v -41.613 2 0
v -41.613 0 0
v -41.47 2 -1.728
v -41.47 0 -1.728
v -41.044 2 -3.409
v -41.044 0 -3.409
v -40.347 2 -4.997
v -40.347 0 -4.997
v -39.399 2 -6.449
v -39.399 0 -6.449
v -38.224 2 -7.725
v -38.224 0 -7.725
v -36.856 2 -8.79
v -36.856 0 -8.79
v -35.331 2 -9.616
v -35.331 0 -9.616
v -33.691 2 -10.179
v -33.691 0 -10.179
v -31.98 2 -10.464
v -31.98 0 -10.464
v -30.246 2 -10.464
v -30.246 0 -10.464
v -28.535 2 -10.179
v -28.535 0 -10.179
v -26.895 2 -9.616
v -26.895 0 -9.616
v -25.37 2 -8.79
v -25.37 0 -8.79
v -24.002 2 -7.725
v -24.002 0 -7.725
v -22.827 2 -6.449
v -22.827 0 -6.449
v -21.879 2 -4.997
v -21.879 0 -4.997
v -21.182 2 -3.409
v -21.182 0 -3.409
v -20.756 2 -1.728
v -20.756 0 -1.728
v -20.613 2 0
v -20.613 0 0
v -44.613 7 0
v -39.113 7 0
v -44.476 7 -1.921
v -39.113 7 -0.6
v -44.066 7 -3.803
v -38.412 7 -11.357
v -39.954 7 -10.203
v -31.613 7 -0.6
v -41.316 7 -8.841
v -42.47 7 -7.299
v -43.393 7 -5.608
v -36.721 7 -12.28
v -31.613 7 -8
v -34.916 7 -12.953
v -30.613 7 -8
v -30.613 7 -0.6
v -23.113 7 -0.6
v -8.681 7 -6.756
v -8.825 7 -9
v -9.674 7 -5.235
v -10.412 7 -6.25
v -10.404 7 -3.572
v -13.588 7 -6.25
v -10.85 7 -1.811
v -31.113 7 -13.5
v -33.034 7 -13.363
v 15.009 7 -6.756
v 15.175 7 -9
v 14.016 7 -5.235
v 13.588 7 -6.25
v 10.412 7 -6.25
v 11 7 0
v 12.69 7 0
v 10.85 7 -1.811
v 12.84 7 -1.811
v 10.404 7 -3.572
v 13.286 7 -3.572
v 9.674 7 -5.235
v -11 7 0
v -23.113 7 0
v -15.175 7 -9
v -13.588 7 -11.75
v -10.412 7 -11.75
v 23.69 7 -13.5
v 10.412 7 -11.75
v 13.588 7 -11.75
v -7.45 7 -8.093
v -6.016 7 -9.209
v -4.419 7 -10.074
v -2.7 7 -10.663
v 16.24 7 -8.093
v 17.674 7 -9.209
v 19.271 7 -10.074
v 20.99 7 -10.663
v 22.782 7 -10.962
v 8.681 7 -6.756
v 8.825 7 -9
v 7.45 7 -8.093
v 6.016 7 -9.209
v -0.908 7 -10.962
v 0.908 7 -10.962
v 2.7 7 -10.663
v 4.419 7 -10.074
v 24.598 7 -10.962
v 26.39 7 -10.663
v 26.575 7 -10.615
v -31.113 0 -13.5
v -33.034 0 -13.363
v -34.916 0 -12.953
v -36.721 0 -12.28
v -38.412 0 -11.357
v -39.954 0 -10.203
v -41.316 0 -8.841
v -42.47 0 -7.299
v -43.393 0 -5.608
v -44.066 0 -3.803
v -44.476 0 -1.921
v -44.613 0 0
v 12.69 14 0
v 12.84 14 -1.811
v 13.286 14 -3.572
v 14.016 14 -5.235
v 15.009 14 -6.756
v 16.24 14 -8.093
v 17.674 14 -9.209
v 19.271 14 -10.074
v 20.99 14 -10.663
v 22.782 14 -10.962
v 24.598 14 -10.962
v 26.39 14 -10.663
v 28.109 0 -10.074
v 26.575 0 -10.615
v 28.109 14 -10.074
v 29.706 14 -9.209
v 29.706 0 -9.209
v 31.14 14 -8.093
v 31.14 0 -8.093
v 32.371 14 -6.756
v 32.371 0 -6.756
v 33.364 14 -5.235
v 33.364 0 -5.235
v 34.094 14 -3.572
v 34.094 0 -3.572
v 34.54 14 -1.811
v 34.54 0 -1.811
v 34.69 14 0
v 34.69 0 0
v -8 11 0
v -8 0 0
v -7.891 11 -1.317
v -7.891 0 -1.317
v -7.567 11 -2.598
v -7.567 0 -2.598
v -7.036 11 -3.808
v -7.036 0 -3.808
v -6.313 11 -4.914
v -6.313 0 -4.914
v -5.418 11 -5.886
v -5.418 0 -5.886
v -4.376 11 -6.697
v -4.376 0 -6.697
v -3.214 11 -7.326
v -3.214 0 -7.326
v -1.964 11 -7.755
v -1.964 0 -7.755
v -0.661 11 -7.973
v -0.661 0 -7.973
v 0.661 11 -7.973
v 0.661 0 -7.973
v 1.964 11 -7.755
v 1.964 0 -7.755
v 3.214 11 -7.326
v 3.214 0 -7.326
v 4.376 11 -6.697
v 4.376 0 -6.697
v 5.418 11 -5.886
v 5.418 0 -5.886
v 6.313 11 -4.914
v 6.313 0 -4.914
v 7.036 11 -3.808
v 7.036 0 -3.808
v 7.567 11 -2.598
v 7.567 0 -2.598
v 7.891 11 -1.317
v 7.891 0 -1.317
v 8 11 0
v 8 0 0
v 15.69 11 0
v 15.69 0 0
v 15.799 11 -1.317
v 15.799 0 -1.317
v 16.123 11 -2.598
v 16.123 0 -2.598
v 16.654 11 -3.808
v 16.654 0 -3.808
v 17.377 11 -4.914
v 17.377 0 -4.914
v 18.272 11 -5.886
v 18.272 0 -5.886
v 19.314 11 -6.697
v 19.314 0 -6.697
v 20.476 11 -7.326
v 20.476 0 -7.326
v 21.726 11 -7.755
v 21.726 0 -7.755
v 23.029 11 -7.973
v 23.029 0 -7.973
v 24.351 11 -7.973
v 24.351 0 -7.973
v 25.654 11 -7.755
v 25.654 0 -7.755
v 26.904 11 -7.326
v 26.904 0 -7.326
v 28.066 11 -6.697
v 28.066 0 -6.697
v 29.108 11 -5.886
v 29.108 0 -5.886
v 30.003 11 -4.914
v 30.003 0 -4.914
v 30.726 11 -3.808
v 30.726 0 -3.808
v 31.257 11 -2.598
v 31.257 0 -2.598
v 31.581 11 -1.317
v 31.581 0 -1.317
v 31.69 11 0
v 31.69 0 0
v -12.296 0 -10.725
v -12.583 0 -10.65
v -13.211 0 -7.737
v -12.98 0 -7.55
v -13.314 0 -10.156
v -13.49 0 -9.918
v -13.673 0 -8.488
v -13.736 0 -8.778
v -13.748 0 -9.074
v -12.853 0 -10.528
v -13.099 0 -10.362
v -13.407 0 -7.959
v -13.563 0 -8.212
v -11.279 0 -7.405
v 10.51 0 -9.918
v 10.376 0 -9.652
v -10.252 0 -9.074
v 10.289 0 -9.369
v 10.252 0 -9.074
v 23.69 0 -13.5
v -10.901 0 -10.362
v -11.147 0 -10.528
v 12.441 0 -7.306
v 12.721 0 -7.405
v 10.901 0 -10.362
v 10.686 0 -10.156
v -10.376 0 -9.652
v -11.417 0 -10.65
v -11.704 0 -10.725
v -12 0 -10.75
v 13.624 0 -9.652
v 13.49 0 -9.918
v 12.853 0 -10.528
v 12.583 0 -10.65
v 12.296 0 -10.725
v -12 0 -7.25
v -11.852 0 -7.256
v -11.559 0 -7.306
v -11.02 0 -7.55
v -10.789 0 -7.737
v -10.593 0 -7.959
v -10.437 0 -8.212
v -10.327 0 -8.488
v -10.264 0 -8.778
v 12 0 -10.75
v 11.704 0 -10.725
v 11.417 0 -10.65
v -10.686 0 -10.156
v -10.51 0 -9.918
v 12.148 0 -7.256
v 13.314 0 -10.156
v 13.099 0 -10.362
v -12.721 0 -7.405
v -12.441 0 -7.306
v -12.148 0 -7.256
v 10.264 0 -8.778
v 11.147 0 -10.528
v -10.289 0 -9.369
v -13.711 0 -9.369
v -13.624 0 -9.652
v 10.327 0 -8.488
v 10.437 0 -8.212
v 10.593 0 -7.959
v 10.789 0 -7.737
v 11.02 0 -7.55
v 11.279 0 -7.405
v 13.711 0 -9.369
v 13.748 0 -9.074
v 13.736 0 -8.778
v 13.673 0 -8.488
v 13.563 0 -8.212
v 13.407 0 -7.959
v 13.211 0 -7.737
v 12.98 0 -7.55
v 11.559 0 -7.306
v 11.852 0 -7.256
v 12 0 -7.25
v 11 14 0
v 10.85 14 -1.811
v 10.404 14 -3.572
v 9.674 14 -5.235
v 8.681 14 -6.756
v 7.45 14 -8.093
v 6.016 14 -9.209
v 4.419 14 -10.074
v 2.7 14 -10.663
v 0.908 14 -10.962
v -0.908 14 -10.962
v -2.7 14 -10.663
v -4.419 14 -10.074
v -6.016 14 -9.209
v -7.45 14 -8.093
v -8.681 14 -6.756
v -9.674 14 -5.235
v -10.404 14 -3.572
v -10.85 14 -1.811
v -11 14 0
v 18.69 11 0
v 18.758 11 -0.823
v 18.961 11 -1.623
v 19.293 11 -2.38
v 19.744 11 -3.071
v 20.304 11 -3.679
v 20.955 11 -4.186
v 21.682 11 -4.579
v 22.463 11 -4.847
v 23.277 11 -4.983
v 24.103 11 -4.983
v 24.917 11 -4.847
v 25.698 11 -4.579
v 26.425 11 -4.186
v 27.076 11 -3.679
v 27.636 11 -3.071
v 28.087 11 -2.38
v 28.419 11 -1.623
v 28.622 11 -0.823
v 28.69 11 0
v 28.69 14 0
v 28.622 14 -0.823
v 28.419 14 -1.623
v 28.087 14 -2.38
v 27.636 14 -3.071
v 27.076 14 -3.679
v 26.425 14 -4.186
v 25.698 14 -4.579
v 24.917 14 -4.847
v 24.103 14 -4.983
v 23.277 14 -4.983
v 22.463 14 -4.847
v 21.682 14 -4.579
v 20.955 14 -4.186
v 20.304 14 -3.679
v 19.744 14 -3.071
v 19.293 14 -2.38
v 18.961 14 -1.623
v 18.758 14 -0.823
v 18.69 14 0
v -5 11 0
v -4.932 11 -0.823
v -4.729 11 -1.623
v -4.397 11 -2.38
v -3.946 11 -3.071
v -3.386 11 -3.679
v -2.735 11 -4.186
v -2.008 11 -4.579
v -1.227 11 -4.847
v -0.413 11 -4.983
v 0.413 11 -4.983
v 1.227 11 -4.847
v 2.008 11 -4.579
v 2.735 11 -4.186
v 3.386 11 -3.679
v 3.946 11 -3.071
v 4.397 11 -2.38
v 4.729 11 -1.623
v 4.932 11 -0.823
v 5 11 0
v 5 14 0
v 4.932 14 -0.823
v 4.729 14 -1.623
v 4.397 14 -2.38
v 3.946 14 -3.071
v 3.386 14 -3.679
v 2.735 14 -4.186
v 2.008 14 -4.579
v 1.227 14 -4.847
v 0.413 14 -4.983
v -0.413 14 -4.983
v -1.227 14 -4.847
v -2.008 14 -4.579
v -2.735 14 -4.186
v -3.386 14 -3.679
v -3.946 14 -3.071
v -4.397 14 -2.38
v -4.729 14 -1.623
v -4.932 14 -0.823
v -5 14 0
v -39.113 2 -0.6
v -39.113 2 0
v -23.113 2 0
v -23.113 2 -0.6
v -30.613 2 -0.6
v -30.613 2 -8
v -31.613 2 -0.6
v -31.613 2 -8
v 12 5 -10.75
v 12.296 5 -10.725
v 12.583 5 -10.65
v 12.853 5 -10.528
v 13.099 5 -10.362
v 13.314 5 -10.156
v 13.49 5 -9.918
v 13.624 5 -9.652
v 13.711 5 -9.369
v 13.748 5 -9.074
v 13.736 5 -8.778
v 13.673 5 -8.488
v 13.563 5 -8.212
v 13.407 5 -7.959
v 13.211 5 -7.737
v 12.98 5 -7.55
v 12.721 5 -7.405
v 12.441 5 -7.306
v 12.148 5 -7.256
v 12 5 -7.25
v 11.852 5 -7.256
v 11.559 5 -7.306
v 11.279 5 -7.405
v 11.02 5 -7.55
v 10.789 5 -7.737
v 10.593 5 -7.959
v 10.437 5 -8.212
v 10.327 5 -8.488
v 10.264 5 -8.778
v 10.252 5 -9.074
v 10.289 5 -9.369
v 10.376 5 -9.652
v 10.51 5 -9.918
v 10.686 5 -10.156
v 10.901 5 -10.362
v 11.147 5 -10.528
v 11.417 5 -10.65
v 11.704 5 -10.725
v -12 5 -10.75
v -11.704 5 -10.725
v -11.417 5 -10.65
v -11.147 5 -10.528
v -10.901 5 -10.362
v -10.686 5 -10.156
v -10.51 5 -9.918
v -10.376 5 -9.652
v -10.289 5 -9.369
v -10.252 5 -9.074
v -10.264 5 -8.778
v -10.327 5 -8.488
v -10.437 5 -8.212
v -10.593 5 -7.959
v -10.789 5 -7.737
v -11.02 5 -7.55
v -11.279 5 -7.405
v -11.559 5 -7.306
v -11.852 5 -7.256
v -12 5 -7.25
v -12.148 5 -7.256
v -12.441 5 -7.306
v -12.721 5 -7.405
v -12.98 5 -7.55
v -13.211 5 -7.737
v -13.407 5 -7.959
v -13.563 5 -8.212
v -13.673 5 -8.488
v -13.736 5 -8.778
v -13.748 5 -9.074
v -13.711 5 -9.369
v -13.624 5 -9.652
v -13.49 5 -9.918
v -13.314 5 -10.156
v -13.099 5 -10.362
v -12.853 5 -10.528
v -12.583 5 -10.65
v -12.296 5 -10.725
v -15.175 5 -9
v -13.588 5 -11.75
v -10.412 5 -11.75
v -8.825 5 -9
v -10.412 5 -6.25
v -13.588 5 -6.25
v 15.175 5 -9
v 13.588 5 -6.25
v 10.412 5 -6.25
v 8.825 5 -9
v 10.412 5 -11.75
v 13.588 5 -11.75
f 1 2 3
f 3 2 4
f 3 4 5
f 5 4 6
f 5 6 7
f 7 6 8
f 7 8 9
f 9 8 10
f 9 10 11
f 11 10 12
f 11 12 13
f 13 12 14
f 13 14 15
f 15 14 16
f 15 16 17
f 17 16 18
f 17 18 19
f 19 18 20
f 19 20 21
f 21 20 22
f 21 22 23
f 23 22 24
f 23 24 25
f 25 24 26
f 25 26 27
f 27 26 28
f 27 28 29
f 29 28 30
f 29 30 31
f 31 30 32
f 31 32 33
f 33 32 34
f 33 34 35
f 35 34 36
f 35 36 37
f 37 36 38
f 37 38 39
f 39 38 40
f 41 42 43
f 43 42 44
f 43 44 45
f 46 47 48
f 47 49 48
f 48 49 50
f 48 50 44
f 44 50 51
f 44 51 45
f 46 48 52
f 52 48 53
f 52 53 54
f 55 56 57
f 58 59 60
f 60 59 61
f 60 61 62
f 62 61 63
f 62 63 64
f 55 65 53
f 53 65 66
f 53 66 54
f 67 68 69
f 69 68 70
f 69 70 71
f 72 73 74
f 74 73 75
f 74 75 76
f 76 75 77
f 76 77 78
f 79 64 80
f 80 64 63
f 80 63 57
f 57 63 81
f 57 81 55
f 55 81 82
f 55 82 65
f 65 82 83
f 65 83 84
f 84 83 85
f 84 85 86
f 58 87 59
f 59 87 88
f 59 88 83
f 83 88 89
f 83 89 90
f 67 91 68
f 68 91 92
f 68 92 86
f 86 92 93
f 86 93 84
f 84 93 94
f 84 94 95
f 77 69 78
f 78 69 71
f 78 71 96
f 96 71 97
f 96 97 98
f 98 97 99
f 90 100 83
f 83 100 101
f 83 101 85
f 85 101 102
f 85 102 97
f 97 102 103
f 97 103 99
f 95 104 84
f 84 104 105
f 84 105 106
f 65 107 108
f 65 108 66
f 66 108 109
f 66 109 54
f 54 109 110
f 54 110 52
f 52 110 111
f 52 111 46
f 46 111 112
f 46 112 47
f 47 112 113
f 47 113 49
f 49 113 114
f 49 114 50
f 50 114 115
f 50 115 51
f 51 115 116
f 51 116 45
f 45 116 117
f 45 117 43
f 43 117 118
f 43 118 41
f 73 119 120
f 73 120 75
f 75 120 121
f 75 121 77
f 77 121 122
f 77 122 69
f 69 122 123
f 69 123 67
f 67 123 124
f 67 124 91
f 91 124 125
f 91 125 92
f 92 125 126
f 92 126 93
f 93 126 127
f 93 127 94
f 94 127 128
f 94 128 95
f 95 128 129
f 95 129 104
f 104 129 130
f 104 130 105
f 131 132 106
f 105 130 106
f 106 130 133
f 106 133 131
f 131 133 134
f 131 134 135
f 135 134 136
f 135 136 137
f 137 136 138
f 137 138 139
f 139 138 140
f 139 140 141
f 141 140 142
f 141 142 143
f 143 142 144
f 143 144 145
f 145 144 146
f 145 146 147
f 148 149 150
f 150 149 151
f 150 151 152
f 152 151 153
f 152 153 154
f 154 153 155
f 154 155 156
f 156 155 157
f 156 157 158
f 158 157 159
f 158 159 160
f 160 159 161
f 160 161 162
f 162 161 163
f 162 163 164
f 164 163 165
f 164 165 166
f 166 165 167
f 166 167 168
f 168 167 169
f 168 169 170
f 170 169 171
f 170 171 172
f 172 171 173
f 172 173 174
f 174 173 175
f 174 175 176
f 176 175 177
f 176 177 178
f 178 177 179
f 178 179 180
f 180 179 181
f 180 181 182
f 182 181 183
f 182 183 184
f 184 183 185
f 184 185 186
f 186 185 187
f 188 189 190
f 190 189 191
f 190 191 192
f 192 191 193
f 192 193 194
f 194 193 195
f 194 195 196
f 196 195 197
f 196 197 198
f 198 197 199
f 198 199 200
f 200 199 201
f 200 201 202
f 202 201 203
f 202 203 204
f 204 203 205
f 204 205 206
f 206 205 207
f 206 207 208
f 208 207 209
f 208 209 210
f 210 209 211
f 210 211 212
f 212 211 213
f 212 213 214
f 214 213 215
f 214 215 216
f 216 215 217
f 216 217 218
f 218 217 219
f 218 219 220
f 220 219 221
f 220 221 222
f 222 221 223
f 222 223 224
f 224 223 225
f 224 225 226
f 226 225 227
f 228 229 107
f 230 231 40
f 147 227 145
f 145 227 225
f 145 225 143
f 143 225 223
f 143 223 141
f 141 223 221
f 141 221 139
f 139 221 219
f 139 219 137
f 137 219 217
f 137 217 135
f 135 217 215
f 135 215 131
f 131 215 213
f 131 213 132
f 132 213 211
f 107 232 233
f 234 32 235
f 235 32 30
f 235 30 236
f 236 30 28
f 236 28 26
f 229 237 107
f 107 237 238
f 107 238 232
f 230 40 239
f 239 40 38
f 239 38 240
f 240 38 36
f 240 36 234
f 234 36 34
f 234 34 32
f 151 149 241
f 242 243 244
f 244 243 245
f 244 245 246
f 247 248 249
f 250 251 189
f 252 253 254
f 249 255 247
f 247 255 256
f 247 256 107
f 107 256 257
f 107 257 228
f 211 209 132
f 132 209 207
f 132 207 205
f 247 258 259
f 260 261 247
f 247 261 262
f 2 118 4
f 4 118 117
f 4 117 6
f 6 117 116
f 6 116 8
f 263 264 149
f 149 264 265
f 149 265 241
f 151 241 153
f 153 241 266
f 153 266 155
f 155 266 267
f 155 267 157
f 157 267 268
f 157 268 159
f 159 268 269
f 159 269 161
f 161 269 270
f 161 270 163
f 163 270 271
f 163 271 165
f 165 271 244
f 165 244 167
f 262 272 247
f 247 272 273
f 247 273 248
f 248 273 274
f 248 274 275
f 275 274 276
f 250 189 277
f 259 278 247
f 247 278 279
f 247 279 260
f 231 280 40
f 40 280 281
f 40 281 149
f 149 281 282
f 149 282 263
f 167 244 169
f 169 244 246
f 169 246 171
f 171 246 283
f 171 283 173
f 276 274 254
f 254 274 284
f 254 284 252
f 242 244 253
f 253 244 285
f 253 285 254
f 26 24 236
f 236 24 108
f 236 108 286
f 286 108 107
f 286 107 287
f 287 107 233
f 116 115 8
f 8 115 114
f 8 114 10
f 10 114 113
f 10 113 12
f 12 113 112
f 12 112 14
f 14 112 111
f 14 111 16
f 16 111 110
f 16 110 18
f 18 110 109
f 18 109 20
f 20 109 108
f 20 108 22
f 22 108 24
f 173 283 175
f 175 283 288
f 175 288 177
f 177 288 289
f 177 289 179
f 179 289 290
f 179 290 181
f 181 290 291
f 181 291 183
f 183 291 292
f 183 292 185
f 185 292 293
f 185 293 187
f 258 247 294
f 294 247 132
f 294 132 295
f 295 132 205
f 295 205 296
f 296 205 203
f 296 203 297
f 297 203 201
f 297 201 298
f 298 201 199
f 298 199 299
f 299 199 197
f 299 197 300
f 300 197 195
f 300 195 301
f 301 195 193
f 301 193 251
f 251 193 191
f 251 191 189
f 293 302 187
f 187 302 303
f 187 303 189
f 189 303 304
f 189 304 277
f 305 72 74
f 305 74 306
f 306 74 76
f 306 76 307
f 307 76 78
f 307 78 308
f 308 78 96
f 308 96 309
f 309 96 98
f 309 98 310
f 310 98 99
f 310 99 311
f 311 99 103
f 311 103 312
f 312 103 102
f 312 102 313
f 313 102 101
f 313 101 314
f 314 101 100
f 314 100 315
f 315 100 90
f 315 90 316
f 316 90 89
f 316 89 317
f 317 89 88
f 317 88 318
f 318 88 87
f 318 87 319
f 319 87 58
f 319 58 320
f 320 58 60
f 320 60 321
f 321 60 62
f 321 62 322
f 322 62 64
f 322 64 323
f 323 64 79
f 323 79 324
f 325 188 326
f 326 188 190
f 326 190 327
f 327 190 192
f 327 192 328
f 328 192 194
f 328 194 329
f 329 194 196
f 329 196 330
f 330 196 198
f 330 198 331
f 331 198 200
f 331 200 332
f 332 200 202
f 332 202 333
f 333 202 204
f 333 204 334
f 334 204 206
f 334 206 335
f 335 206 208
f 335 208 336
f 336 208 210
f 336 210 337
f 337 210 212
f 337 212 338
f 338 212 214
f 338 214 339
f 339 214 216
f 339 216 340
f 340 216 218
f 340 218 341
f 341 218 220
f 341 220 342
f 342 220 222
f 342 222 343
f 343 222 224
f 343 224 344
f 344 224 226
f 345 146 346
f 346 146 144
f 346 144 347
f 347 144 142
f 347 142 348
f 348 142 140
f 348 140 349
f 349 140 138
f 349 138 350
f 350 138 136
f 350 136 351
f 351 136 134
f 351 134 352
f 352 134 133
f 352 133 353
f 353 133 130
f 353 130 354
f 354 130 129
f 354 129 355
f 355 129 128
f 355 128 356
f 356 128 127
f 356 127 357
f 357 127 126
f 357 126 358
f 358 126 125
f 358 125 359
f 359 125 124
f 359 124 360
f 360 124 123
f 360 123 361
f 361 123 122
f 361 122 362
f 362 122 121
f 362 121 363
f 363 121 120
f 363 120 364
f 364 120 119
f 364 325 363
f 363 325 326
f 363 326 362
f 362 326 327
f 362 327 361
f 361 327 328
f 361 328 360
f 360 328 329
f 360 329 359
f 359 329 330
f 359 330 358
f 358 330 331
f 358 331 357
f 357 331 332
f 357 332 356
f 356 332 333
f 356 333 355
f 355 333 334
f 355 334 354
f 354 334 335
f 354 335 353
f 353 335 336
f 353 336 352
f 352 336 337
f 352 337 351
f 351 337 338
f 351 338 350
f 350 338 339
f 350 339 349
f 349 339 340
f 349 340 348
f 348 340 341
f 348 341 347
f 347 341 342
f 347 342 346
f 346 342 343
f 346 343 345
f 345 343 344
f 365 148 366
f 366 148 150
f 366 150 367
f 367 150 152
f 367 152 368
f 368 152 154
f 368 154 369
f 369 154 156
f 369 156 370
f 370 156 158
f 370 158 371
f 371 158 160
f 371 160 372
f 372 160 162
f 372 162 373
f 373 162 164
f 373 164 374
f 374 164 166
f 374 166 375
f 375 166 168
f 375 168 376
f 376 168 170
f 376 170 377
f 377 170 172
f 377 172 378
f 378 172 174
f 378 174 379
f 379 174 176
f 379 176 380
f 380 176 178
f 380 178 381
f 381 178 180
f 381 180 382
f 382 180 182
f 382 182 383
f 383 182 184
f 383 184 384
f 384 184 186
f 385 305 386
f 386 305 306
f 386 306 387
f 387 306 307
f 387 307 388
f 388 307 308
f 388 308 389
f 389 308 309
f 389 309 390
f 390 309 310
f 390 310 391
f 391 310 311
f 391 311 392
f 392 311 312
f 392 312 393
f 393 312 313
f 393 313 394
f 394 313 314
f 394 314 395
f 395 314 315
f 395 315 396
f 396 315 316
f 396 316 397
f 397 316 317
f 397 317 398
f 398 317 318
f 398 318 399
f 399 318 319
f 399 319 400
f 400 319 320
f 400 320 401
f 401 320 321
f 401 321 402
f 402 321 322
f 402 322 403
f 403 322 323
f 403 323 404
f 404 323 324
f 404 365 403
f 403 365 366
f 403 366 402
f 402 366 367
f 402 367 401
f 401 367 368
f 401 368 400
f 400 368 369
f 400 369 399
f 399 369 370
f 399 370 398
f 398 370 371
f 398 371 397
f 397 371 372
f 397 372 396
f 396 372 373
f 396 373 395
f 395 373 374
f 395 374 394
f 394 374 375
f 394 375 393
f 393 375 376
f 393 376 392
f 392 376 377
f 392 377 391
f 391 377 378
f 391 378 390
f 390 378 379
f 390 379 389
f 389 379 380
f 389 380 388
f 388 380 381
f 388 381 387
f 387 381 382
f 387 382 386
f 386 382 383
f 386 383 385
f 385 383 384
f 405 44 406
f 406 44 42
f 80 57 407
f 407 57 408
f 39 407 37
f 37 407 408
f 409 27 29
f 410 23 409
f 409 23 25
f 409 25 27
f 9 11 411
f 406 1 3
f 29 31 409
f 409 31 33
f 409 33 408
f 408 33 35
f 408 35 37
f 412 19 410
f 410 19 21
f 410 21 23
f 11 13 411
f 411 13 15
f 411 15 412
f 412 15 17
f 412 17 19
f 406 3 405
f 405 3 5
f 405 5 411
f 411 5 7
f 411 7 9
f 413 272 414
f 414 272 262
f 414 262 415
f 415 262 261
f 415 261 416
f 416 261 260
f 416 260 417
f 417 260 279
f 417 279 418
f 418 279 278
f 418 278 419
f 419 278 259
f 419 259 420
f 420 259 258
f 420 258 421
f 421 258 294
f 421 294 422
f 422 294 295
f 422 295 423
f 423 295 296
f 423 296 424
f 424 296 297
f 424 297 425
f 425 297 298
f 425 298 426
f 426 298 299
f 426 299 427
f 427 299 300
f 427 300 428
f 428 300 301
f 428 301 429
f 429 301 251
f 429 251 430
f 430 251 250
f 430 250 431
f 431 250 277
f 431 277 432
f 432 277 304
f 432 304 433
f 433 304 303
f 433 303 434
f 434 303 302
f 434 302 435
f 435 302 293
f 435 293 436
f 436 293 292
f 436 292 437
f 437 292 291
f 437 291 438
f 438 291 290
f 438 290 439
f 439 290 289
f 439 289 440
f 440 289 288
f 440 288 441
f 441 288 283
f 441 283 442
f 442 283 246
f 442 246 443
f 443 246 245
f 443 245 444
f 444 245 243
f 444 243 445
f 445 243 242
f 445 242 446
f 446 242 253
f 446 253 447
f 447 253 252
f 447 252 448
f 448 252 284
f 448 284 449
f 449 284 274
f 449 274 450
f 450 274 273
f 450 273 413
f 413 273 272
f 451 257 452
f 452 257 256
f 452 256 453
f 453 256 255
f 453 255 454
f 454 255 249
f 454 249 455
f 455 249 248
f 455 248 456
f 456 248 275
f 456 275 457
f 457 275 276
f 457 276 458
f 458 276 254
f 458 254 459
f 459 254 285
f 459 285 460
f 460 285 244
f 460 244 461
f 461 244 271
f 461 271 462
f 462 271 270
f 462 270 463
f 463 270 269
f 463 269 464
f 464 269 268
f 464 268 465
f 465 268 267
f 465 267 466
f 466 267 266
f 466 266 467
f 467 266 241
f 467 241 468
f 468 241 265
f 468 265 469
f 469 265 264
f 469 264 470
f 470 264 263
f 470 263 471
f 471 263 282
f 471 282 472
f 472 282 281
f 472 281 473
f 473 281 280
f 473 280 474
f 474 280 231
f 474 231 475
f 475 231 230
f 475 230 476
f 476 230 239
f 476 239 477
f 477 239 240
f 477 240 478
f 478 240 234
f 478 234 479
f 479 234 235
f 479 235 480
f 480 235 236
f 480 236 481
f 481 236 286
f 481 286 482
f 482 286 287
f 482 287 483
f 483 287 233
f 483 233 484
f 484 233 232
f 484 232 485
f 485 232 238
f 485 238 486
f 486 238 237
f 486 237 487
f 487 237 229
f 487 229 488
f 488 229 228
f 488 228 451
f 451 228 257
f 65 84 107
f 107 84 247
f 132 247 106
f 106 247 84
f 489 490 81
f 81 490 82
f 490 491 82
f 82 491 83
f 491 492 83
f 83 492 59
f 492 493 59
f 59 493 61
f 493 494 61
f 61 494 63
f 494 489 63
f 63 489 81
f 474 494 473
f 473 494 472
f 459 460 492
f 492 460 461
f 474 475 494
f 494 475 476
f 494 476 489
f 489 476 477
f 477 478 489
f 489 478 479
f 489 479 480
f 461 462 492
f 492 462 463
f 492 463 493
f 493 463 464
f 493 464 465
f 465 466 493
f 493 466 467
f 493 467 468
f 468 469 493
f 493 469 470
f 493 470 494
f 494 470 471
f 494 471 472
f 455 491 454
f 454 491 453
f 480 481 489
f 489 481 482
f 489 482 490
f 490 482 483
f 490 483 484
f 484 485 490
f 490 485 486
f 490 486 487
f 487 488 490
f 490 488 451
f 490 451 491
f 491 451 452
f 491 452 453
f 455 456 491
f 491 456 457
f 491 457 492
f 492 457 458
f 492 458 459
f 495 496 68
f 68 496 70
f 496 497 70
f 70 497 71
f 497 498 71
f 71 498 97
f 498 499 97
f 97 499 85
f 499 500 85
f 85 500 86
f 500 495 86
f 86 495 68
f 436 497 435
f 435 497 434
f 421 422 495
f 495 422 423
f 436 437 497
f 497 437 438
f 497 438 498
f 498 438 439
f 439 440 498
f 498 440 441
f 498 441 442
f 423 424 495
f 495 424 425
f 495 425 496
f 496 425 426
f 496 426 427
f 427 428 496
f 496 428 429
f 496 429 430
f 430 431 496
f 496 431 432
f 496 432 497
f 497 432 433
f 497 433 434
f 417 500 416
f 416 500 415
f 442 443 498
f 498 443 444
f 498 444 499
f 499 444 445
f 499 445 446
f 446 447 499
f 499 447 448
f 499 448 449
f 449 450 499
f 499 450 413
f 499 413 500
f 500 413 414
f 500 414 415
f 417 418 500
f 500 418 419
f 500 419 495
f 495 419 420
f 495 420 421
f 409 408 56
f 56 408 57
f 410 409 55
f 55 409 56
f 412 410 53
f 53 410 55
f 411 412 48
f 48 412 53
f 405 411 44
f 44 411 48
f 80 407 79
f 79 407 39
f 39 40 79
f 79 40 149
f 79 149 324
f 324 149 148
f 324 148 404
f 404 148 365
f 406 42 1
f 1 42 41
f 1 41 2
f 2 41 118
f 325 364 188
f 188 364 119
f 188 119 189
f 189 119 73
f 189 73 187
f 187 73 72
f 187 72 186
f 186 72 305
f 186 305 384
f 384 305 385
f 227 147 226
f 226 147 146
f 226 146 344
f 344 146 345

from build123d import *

# Parameters (mm, degrees)
SKETCH3_R               = 8
SKETCH3_R_2             = 5.000000000000001
BOSS_EXTRUDE1_DEPTH     = 7
CUT_EXTRUDE3_DEPTH      = 65.10592616131524
CUT_EXTRUDE3_DEPTH_BACK = 65.10592616131524
SKETCH4_R               = 1.7500000000000004
SKETCH4_R_2             = 1.7500000000000013
SKETCH6_R               = 10.999999999999993
SKETCH6_R_2             = 7.999999999999998
SKETCH6_R_3             = 11
SKETCH6_R_4             = 8
BOSS_EXTRUDE2_DEPTH     = 4
SKETCH7_R               = 10.999999999999993
SKETCH7_R_2             = 5.000000000000001
SKETCH7_R_3             = 11
SKETCH7_R_4             = 5
BOSS_EXTRUDE3_DEPTH     = 3
CHAMFER1_SIZE           = 2.5
CUT_EXTRUDE5_DEPTH      = 66.242392422412
CUT_EXTRUDE5_DEPTH_BACK = 66.242392422412
SKETCH9_R               = 1.7499999999999998
CUT_EXTRUDE6_START      = -2
SKETCH10_R              = 1.7499999999999998
CUT_EXTRUDE6_DEPTH      = 2
CHAMFER3_SIZE2          = 32
CHAMFER3_SIZE           = 22
CHAMFER4_SIZE           = 16
FILLET1_DEPTH           = 7
BOSS_EXTRUDE6_START     = 2
BOSS_EXTRUDE6_OUTLINE_R = 10.5
BOSS_EXTRUDE6_DEPTH     = 5
CUT_EXTRUDE7_DEPTH      = 66.24239242241201
CUT_EXTRUDE7_DEPTH_BACK = 66.24239242241201
SKETCH16_W              = 114.08603317988053
SKETCH16_H              = 61.14789556835377


with BuildPart() as part:
    # Sketch3 → Boss-Extrude1 (new body)
    # profile 1 of 10: a face of its own
    with BuildSketch(Plane(origin=(0, 0, 0), x_dir=(1, 0, 0), z_dir=(0, 1, 0))):
        with BuildLine():
            ThreePointArc((-17.613, 0), (-21.567058453981605, 9.545941546018392), (-31.113, 13.500000000000002))
            Line((-31.113, 13.5), (-31.113, 10.499999999999996))
            ThreePointArc((-31.11300000000032, 10.499999999999996), (-23.688378797541365, 7.424621202458859), (-20.613000000000003, 0))
            ThreePointArc((-20.613000000000003, -2.57e-15), (-23.688378797541368, -7.4246212024588605), (-31.11300000000031, -10.499999999999996))
            Line((-31.112999999999992, -10.499999999999996), (-31.112999999999992, -13.500000000000007))
            ThreePointArc((-31.11299999999999, -13.500000000000002), (-21.567058453981602, -9.545941546018385), (-17.613, -3.31e-15))
        make_face()
    # profile 2 of 10: a face of its own
    with BuildSketch(Plane(origin=(0, 0, 0), x_dir=(1, 0, 0), z_dir=(0, 1, 0))):
        with BuildLine():
            Line((-31.113, 10.499999999999996), (-31.113, 13.5))
            ThreePointArc((-31.113, 13.500000000000002), (-44.613, -4.34e-15), (-31.11299999999999, -13.500000000000002))
            Line((-31.112999999999992, -13.500000000000007), (-31.112999999999992, -10.499999999999996))
            ThreePointArc((-31.11300000000031, -10.499999999999996), (-41.613, -8.04e-15), (-31.11300000000032, 10.499999999999996))
        make_face()
    # profile 3 of 10: a face of its own
    with BuildSketch(Plane(origin=(0, 0, 0), x_dir=(1, 0, 0), z_dir=(0, 1, 0))):
        with BuildLine():
            Line((23.690000000000005, 13.500000000000002), (-31.113, 13.5))
            ThreePointArc((-31.113, 13.500000000000002), (-21.567058453981605, 9.545941546018392), (-17.613, 0))
            ThreePointArc((-17.613, -3.31e-15), (-21.567058453981602, -9.545941546018385), (-31.11299999999999, -13.500000000000002))
            Line((-31.112999999999992, -13.500000000000005), (23.690000000000005, -13.499999999999998))
            Line((23.690000000000005, -13.499999999999998), (23.690000000000005, -10.999999999999991))
            ThreePointArc((23.689999999999998, -10.999999999999993), (12.690000000000008, 1.112e-14), (23.690000000000015, 10.999999999999993))
            Line((23.690000000000005, 10.999999999999993), (23.690000000000005, 13.500000000000002))
        make_face()
        with Locations(Location((0, 0, 0), (0, 0, 270))):
            Circle(SKETCH3_R, mode=Mode.SUBTRACT)
    # profile 4 of 10: a face of its own
    with BuildSketch(Plane(origin=(0, 0, 0), x_dir=(1, 0, 0), z_dir=(0, 1, 0))):
        with BuildLine():
            ThreePointArc((-17.613, 0), (-21.567058453981605, 9.545941546018392), (-31.113, 13.500000000000002))
            Line((-31.113, 13.5), (-31.113, 10.499999999999996))
            ThreePointArc((-31.11300000000032, 10.499999999999996), (-23.688378797541365, 7.424621202458859), (-20.613000000000003, 0))
            ThreePointArc((-20.613000000000003, -2.57e-15), (-23.688378797541368, -7.4246212024588605), (-31.11300000000031, -10.499999999999996))
            Line((-31.112999999999992, -10.499999999999996), (-31.112999999999992, -13.500000000000007))
            ThreePointArc((-31.11299999999999, -13.500000000000002), (-21.567058453981602, -9.545941546018385), (-17.613, -3.31e-15))
        make_face()
    # profile 5 of 10: a face of its own
    with BuildSketch(Plane(origin=(0, 0, 0), x_dir=(1, 0, 0), z_dir=(0, 1, 0))):
        with BuildLine():
            Line((-31.113, 10.499999999999996), (-31.113, 13.5))
            ThreePointArc((-31.113, 13.500000000000002), (-44.613, -4.34e-15), (-31.11299999999999, -13.500000000000002))
            Line((-31.112999999999992, -13.500000000000007), (-31.112999999999992, -10.499999999999996))
            ThreePointArc((-31.11300000000031, -10.499999999999996), (-41.613, -8.04e-15), (-31.11300000000032, 10.499999999999996))
        make_face()
    # profile 6 of 10: a face of its own
    with BuildSketch(Plane(origin=(0, 0, 0), x_dir=(1, 0, 0), z_dir=(0, 1, 0))):
        with BuildLine():
            ThreePointArc((34.69, 0), (31.468174593052026, 7.778174593052012), (23.690000000000015, 10.999999999999993))
            Line((23.690000000000005, 10.999999999999993), (23.690000000000005, 7.999999999999998))
            ThreePointArc((23.689999999999863, 7.999999999999998), (29.34685424949233, 5.6568542494924285), (31.689999999999998, 0))
            ThreePointArc((31.689999999999998, -1.96e-15), (29.34685424949233, -5.65685424949243), (23.68999999999986, -7.999999999999998))
            Line((23.690000000000005, -7.999999999999998), (23.690000000000005, -10.999999999999991))
            ThreePointArc((23.689999999999998, -10.999999999999993), (31.468174593052016, -7.77817459305202), (34.69, -2.69e-15))
        make_face()
    # profile 7 of 10: a face of its own
    with BuildSketch(Plane(origin=(0, 0, 0), x_dir=(1, 0, 0), z_dir=(0, 1, 0))):
        with BuildLine():
            Line((23.690000000000005, 7.999999999999998), (23.690000000000005, 10.999999999999993))
            ThreePointArc((23.690000000000015, 10.999999999999993), (12.690000000000008, 1.112e-14), (23.689999999999998, -10.999999999999993))
            Line((23.690000000000005, -10.999999999999991), (23.690000000000005, -7.999999999999998))
            ThreePointArc((23.68999999999986, -7.999999999999998), (15.690000000000003, 9.8e-16), (23.689999999999863, 7.999999999999998))
        make_face()
    # profile 8 of 10: a face of its own
    with BuildSketch(Plane(origin=(0, 0, 0), x_dir=(1, 0, 0), z_dir=(0, 1, 0))):
        Polygon((-31.112999999999992, -13.500000000000005), (23.690000000000005, -13.499999999999998), (23.690000000000005, -45.5), (-31.11299999999999, -45.5), align=None)
        with Locations(Location((0, -32.70757493091458, 0), (0, 0, 270))):
            Circle(SKETCH3_R_2, mode=Mode.SUBTRACT)
    # profile 9 of 10: a face of its own
    with BuildSketch(Plane(origin=(0, 0, 0), x_dir=(1, 0, 0), z_dir=(0, 1, 0))):
        with BuildLine():
            ThreePointArc((34.69, 0), (31.468174593052026, 7.778174593052012), (23.690000000000015, 10.999999999999993))
            Line((23.690000000000005, 10.999999999999993), (23.690000000000005, 7.999999999999998))
            ThreePointArc((23.689999999999863, 7.999999999999998), (29.34685424949233, 5.6568542494924285), (31.689999999999998, 0))
            ThreePointArc((31.689999999999998, -1.96e-15), (29.34685424949233, -5.65685424949243), (23.68999999999986, -7.999999999999998))
            Line((23.690000000000005, -7.999999999999998), (23.690000000000005, -10.999999999999991))
            ThreePointArc((23.689999999999998, -10.999999999999993), (31.468174593052016, -7.77817459305202), (34.69, -2.69e-15))
        make_face()
    # profile 10 of 10: a face of its own
    with BuildSketch(Plane(origin=(0, 0, 0), x_dir=(1, 0, 0), z_dir=(0, 1, 0))):
        with BuildLine():
            Line((23.690000000000005, 7.999999999999998), (23.690000000000005, 10.999999999999993))
            ThreePointArc((23.690000000000015, 10.999999999999993), (12.690000000000008, 1.112e-14), (23.689999999999998, -10.999999999999993))
            Line((23.690000000000005, -10.999999999999991), (23.690000000000005, -7.999999999999998))
            ThreePointArc((23.68999999999986, -7.999999999999998), (15.690000000000003, 9.8e-16), (23.689999999999863, 7.999999999999998))
        make_face()
    extrude(amount=BOSS_EXTRUDE1_DEPTH)

    # Sketch4 → Cut-Extrude3 (cut, two sides: drawn at the far end of the back side and taken through both)
    with BuildSketch(Plane(origin=(0, 0, 0), x_dir=(1, 0, 0), z_dir=(0, 1, 0)).offset(-CUT_EXTRUDE3_DEPTH_BACK)):
        with Locations(Location((5.5, -27.207574930914586, 0), (0, 0, 270))):
            Circle(SKETCH4_R)
        with Locations(Location((5.5, -38.20757493091458, 0), (0, 0, 270))):
            Circle(SKETCH4_R_2)
        with Locations(Location((-5.5, -38.20757493091458, 0), (0, 0, 270))):
            Circle(SKETCH4_R_2)
        with Locations(Location((-5.5, -27.207574930914586, 0), (0, 0, 270))):
            Circle(SKETCH4_R)
    extrude(amount=CUT_EXTRUDE3_DEPTH + CUT_EXTRUDE3_DEPTH_BACK, mode=Mode.SUBTRACT)

    # Sketch6 → Boss-Extrude2 (add)
    # profile 1 of 2: a face of its own
    with BuildSketch(Plane(origin=(0, 7, 0), x_dir=(1, 0, 0), z_dir=(0, 1, 0))):
        with Locations(Location((23.69, 0, 0), (0, 0, 270))):
            Circle(SKETCH6_R)
        with Locations(Location((23.69, 0, 0), (0, 0, 270))):
            Circle(SKETCH6_R_2, mode=Mode.SUBTRACT)
    # profile 2 of 2: a face of its own
    with BuildSketch(Plane(origin=(0, 7, 0), x_dir=(1, 0, 0), z_dir=(0, 1, 0))):
        with Locations(Location((0, 0, 0), (0, 0, 270))):
            Circle(SKETCH6_R_3)
        with Locations(Location((0, 0, 0), (0, 0, 270))):
            Circle(SKETCH6_R_4, mode=Mode.SUBTRACT)
    extrude(amount=BOSS_EXTRUDE2_DEPTH)

    # Sketch7 → Boss-Extrude3 (add)
    # profile 1 of 2: a face of its own
    with BuildSketch(Plane(origin=(0, 11, 0), x_dir=(1, 0, 0), z_dir=(0, 1, 0))):
        with Locations(Location((23.69, 0, 0), (0, 0, 270))):
            Circle(SKETCH7_R)
        with Locations(Location((23.69, 0, 0), (0, 0, 270))):
            Circle(SKETCH7_R_2, mode=Mode.SUBTRACT)
    # profile 2 of 2: a face of its own
    with BuildSketch(Plane(origin=(0, 11, 0), x_dir=(1, 0, 0), z_dir=(0, 1, 0))):
        with Locations(Location((0, 0, 0), (0, 0, 270))):
            Circle(SKETCH7_R_3)
        with Locations(Location((0, 0, 0), (0, 0, 270))):
            Circle(SKETCH7_R_4, mode=Mode.SUBTRACT)
    extrude(amount=BOSS_EXTRUDE3_DEPTH)

    # Chamfer1
    # the kernel refuses this chamfer: 2.5 mm, written as the material it adds along each edge
    with BuildSketch(Plane(origin=(23.690000000000012, 0, -10.999999999999993), x_dir=(0.9912092295509807, 0, 0.13230367815352426), z_dir=(0, 1, 0))) as chamfer1_piece_1_section:
        with BuildLine():
            Line((2.910680919377515, 1e-17), (-CHAMFER1_SIZE * 0.132303678154, CHAMFER1_SIZE * 0.991209229551))
            Line((-CHAMFER1_SIZE * 0.132303678154, CHAMFER1_SIZE * 0.991209229551), (0, 0))
            ThreePointArc((0, 0), (1.4955265802521478, 0.09662506904492212), (2.910680919377515, 1e-17))
        make_face()
    chamfer1_piece_1 = extrude(amount=7, mode=Mode.PRIVATE)
    chamfer1_piece_1 = split(chamfer1_piece_1, bisect_by=Plane(origin=(23.690000000000012, 0, -13.500000000000002), z_dir=(3e-17, 0, 1)), keep=Keep.TOP, mode=Mode.PRIVATE)
    add(chamfer1_piece_1)

    # Sketch9 → Cut-Extrude5 (cut, two sides: drawn at the far end of the back side and taken through both)
    with BuildSketch(Plane(origin=(0, 0, 0), x_dir=(1, 0, 0), z_dir=(0, 1, 0)).offset(-CUT_EXTRUDE5_DEPTH_BACK)):
        with Locations(Location((12, 9, 0), (0, 0, 90))):
            Circle(SKETCH9_R)
        with Locations(Location((12, -9, 0), (0, 0, 90))):
            Circle(SKETCH9_R)
        with Locations(Location((-12, -9, 0), (0, 0, 90))):
            Circle(SKETCH9_R)
        with Locations(Location((-12, 9, 0), (0, 0, 90))):
            Circle(SKETCH9_R)
    extrude(amount=CUT_EXTRUDE5_DEPTH + CUT_EXTRUDE5_DEPTH_BACK, mode=Mode.SUBTRACT)

    # Sketch10 → Cut-Extrude6 (cut)
    # profile 1 of 4: a face of its own
    with BuildSketch(Plane(origin=(0, 7, 0), x_dir=(1, 0, 0), z_dir=(0, 1, 0)).offset(CUT_EXTRUDE6_START)):
        Polygon((-15.17542648054294, -9.000000000000002), (-13.587713240271471, -11.749999999999998), (-10.412286759728527, -11.749999999999998), (-8.824573519457056, -8.999999999999998), (-10.412286759728529, -6.249999999999998), (-13.58771324027147, -6.249999999999998), align=None)
        with Locations(Location((-12, -9, 0), (0, 0, 90))):
            Circle(SKETCH10_R, mode=Mode.SUBTRACT)
    # profile 2 of 4: a face of its own
    with BuildSketch(Plane(origin=(0, 7, 0), x_dir=(1, 0, 0), z_dir=(0, 1, 0)).offset(CUT_EXTRUDE6_START)):
        Polygon((-15.17542648054294, 8.999999999999998), (-13.587713240271473, 6.249999999999999), (-10.41228675972853, 6.249999999999999), (-8.824573519457058, 9), (-10.412286759728529, 11.75), (-13.587713240271468, 11.75), align=None)
        with Locations(Location((-12, 9, 0), (0, 0, 90))):
            Circle(SKETCH10_R, mode=Mode.SUBTRACT)
    # profile 3 of 4: a face of its own
    with BuildSketch(Plane(origin=(0, 7, 0), x_dir=(1, 0, 0), z_dir=(0, 1, 0)).offset(CUT_EXTRUDE6_START)):
        Polygon((15.175426480542939, 8.999999999999998), (13.587713240271471, 11.749999999999996), (10.412286759728532, 11.749999999999996), (8.82457351945706, 8.999999999999995), (10.412286759728527, 6.249999999999997), (13.58771324027147, 6.249999999999997), align=None)
        with Locations(Location((12, 9, 0), (0, 0, 90))):
            Circle(SKETCH10_R, mode=Mode.SUBTRACT)
    # profile 4 of 4: a face of its own
    with BuildSketch(Plane(origin=(0, 7, 0), x_dir=(1, 0, 0), z_dir=(0, 1, 0)).offset(CUT_EXTRUDE6_START)):
        Polygon((15.17542648054294, -9.000000000000002), (13.58771324027147, -6.249999999999999), (10.41228675972853, -6.249999999999999), (8.824573519457058, -9.000000000000002), (10.41228675972853, -11.75), (13.587713240271471, -11.75), align=None)
        with Locations(Location((12, -9, 0), (0, 0, 90))):
            Circle(SKETCH10_R, mode=Mode.SUBTRACT)
    extrude(amount=CUT_EXTRUDE6_DEPTH, mode=Mode.SUBTRACT)

    # Chamfer2
    # the kernel refuses this chamfer: 5 mm, written as the material it adds along each edge
    with BuildSketch(Plane(origin=(23.69, 0, 10.999999999999993), x_dir=(0.9874000606639179, 0, -0.15824386307497393), z_dir=(0, 1, 0))) as chamfer2_piece_1:
        with BuildLine():
            Line((3.622786343886572, 0.1414213562374673), (-0.8058373565311953, -4.287202344190177))
            Line((-0.8058373565311953, -4.287202344190177), (-0.9045773625975885, -4.27137795788268))
            ThreePointArc((-0.9045773625975885, -4.27137795788268), (-0.4437672242597131, -2.1370546546533555), (-0.0987400060663932, 0.01582438630749762))
            Line((-0.0987400060663932, 0.01582438630749762), (0.01582438630749734, 0.09874000606639144))
            ThreePointArc((0.01582438630749734, 0.09874000606639144), (1.8121079396960726, -0.03836531209673867), (3.6069619575790735, 0.24016136230385873))
            Line((3.6069619575790735, 0.24016136230385873), (3.622786343886572, 0.1414213562374673))
        make_face()
    extrude(amount=7)

    # Chamfer3
    chamfer3_edges = [part.edges().sort_by_distance(p)[0] for p in [
        (-31.11299999999999, 3.5, 45.5),
    ]]
    chamfer3_side = [part.faces().sort_by_distance(p)[0] for p in [
        (-30.672999999999988, 3.5, 45.5),
    ]]
    chamfer(chamfer3_edges, length=CHAMFER3_SIZE - 0.0001, length2=CHAMFER3_SIZE2 - 0.0001, reference=chamfer3_side[0])  # a hair under: the kernel refuses the full size

    # Chamfer4
    chamfer4_edges = [part.edges().sort_by_distance(p)[0] for p in [
        (23.690000000000005, 3.5, 45.5),
    ]]
    chamfer(chamfer4_edges, length=CHAMFER4_SIZE)

    # Fillet1: read off the stored shape, not the designer's step
    # Fillet1 outline → Fillet1 (add)
    with BuildSketch(Plane(origin=(0, 0, 0), x_dir=(1, 0, 0), z_dir=(0, 1, 0))):
        with BuildLine():
            ThreePointArc((-31.113, -13.5), (-32.547033058, -13.423619079), (-33.96483904, -13.19534062))
            ThreePointArc((-33.96483904, -13.19534062), (-31.199410591, -14.370304214), (-29.062482337, -16.482571146))
            Line((-29.062482337, -16.482571146), (-31.113, -13.5))
        make_face()
    extrude(amount=FILLET1_DEPTH)

    # Boss-Extrude6: read off the stored shape, not the designer's step
    # Boss-Extrude6 outline → Boss-Extrude6 (add)
    with BuildSketch(Plane(origin=(0, 0, 0), x_dir=(1, 0, 0), z_dir=(0, 1, 0)).offset(BOSS_EXTRUDE6_START)):
        with Locations((-31.113, 0)):
            Circle(BOSS_EXTRUDE6_OUTLINE_R)
        Polygon((-30.613, 8), (-30.613, 0.6), (-23.113, 0.6), (-23.113, -0.6), (-30.613, -0.6), (-30.613, -8), (-31.613, -8), (-31.613, -0.6), (-39.113, -0.6), (-39.113, 0.6), (-31.613, 0.6), (-31.613, 8), align=None, mode=Mode.SUBTRACT)
    extrude(amount=BOSS_EXTRUDE6_DEPTH)

    # Sketch16 → Cut-Extrude7 (cut, two sides: drawn at the far end of the back side and taken through both)
    with BuildSketch(Plane(origin=(0, 0, 0), x_dir=(1, 0, 0), z_dir=(0, 1, 0)).offset(-CUT_EXTRUDE7_DEPTH_BACK)):
        with Locations((4.584286452118391, -30.573947784176884)):
            Rectangle(SKETCH16_W, SKETCH16_H)
    extrude(amount=CUT_EXTRUDE7_DEPTH + CUT_EXTRUDE7_DEPTH_BACK, mode=Mode.SUBTRACT)


solid = part.part
